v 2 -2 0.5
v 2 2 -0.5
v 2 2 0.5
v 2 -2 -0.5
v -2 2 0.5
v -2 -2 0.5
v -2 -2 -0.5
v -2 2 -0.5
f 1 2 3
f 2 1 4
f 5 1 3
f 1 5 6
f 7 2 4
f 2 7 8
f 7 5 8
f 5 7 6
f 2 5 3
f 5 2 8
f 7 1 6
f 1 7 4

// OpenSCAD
// Set the dimensions
length = 4;
width = 4;

// Create the square
cube([length, width, 1], center = true);

// Create the honeycomb pattern
translate([0, 0, 0.5]) {
  linear_extrude(height = 0.2) {
    union() {
      for (x = [-length/4:length/8:length/4]) {
        for (y = [-width/4:width/8:width/4]) {
          translate([x, y, 0]) {
            circle(d = length/8, $fn = 6);
          }
        }
      }
    }
  }
}
